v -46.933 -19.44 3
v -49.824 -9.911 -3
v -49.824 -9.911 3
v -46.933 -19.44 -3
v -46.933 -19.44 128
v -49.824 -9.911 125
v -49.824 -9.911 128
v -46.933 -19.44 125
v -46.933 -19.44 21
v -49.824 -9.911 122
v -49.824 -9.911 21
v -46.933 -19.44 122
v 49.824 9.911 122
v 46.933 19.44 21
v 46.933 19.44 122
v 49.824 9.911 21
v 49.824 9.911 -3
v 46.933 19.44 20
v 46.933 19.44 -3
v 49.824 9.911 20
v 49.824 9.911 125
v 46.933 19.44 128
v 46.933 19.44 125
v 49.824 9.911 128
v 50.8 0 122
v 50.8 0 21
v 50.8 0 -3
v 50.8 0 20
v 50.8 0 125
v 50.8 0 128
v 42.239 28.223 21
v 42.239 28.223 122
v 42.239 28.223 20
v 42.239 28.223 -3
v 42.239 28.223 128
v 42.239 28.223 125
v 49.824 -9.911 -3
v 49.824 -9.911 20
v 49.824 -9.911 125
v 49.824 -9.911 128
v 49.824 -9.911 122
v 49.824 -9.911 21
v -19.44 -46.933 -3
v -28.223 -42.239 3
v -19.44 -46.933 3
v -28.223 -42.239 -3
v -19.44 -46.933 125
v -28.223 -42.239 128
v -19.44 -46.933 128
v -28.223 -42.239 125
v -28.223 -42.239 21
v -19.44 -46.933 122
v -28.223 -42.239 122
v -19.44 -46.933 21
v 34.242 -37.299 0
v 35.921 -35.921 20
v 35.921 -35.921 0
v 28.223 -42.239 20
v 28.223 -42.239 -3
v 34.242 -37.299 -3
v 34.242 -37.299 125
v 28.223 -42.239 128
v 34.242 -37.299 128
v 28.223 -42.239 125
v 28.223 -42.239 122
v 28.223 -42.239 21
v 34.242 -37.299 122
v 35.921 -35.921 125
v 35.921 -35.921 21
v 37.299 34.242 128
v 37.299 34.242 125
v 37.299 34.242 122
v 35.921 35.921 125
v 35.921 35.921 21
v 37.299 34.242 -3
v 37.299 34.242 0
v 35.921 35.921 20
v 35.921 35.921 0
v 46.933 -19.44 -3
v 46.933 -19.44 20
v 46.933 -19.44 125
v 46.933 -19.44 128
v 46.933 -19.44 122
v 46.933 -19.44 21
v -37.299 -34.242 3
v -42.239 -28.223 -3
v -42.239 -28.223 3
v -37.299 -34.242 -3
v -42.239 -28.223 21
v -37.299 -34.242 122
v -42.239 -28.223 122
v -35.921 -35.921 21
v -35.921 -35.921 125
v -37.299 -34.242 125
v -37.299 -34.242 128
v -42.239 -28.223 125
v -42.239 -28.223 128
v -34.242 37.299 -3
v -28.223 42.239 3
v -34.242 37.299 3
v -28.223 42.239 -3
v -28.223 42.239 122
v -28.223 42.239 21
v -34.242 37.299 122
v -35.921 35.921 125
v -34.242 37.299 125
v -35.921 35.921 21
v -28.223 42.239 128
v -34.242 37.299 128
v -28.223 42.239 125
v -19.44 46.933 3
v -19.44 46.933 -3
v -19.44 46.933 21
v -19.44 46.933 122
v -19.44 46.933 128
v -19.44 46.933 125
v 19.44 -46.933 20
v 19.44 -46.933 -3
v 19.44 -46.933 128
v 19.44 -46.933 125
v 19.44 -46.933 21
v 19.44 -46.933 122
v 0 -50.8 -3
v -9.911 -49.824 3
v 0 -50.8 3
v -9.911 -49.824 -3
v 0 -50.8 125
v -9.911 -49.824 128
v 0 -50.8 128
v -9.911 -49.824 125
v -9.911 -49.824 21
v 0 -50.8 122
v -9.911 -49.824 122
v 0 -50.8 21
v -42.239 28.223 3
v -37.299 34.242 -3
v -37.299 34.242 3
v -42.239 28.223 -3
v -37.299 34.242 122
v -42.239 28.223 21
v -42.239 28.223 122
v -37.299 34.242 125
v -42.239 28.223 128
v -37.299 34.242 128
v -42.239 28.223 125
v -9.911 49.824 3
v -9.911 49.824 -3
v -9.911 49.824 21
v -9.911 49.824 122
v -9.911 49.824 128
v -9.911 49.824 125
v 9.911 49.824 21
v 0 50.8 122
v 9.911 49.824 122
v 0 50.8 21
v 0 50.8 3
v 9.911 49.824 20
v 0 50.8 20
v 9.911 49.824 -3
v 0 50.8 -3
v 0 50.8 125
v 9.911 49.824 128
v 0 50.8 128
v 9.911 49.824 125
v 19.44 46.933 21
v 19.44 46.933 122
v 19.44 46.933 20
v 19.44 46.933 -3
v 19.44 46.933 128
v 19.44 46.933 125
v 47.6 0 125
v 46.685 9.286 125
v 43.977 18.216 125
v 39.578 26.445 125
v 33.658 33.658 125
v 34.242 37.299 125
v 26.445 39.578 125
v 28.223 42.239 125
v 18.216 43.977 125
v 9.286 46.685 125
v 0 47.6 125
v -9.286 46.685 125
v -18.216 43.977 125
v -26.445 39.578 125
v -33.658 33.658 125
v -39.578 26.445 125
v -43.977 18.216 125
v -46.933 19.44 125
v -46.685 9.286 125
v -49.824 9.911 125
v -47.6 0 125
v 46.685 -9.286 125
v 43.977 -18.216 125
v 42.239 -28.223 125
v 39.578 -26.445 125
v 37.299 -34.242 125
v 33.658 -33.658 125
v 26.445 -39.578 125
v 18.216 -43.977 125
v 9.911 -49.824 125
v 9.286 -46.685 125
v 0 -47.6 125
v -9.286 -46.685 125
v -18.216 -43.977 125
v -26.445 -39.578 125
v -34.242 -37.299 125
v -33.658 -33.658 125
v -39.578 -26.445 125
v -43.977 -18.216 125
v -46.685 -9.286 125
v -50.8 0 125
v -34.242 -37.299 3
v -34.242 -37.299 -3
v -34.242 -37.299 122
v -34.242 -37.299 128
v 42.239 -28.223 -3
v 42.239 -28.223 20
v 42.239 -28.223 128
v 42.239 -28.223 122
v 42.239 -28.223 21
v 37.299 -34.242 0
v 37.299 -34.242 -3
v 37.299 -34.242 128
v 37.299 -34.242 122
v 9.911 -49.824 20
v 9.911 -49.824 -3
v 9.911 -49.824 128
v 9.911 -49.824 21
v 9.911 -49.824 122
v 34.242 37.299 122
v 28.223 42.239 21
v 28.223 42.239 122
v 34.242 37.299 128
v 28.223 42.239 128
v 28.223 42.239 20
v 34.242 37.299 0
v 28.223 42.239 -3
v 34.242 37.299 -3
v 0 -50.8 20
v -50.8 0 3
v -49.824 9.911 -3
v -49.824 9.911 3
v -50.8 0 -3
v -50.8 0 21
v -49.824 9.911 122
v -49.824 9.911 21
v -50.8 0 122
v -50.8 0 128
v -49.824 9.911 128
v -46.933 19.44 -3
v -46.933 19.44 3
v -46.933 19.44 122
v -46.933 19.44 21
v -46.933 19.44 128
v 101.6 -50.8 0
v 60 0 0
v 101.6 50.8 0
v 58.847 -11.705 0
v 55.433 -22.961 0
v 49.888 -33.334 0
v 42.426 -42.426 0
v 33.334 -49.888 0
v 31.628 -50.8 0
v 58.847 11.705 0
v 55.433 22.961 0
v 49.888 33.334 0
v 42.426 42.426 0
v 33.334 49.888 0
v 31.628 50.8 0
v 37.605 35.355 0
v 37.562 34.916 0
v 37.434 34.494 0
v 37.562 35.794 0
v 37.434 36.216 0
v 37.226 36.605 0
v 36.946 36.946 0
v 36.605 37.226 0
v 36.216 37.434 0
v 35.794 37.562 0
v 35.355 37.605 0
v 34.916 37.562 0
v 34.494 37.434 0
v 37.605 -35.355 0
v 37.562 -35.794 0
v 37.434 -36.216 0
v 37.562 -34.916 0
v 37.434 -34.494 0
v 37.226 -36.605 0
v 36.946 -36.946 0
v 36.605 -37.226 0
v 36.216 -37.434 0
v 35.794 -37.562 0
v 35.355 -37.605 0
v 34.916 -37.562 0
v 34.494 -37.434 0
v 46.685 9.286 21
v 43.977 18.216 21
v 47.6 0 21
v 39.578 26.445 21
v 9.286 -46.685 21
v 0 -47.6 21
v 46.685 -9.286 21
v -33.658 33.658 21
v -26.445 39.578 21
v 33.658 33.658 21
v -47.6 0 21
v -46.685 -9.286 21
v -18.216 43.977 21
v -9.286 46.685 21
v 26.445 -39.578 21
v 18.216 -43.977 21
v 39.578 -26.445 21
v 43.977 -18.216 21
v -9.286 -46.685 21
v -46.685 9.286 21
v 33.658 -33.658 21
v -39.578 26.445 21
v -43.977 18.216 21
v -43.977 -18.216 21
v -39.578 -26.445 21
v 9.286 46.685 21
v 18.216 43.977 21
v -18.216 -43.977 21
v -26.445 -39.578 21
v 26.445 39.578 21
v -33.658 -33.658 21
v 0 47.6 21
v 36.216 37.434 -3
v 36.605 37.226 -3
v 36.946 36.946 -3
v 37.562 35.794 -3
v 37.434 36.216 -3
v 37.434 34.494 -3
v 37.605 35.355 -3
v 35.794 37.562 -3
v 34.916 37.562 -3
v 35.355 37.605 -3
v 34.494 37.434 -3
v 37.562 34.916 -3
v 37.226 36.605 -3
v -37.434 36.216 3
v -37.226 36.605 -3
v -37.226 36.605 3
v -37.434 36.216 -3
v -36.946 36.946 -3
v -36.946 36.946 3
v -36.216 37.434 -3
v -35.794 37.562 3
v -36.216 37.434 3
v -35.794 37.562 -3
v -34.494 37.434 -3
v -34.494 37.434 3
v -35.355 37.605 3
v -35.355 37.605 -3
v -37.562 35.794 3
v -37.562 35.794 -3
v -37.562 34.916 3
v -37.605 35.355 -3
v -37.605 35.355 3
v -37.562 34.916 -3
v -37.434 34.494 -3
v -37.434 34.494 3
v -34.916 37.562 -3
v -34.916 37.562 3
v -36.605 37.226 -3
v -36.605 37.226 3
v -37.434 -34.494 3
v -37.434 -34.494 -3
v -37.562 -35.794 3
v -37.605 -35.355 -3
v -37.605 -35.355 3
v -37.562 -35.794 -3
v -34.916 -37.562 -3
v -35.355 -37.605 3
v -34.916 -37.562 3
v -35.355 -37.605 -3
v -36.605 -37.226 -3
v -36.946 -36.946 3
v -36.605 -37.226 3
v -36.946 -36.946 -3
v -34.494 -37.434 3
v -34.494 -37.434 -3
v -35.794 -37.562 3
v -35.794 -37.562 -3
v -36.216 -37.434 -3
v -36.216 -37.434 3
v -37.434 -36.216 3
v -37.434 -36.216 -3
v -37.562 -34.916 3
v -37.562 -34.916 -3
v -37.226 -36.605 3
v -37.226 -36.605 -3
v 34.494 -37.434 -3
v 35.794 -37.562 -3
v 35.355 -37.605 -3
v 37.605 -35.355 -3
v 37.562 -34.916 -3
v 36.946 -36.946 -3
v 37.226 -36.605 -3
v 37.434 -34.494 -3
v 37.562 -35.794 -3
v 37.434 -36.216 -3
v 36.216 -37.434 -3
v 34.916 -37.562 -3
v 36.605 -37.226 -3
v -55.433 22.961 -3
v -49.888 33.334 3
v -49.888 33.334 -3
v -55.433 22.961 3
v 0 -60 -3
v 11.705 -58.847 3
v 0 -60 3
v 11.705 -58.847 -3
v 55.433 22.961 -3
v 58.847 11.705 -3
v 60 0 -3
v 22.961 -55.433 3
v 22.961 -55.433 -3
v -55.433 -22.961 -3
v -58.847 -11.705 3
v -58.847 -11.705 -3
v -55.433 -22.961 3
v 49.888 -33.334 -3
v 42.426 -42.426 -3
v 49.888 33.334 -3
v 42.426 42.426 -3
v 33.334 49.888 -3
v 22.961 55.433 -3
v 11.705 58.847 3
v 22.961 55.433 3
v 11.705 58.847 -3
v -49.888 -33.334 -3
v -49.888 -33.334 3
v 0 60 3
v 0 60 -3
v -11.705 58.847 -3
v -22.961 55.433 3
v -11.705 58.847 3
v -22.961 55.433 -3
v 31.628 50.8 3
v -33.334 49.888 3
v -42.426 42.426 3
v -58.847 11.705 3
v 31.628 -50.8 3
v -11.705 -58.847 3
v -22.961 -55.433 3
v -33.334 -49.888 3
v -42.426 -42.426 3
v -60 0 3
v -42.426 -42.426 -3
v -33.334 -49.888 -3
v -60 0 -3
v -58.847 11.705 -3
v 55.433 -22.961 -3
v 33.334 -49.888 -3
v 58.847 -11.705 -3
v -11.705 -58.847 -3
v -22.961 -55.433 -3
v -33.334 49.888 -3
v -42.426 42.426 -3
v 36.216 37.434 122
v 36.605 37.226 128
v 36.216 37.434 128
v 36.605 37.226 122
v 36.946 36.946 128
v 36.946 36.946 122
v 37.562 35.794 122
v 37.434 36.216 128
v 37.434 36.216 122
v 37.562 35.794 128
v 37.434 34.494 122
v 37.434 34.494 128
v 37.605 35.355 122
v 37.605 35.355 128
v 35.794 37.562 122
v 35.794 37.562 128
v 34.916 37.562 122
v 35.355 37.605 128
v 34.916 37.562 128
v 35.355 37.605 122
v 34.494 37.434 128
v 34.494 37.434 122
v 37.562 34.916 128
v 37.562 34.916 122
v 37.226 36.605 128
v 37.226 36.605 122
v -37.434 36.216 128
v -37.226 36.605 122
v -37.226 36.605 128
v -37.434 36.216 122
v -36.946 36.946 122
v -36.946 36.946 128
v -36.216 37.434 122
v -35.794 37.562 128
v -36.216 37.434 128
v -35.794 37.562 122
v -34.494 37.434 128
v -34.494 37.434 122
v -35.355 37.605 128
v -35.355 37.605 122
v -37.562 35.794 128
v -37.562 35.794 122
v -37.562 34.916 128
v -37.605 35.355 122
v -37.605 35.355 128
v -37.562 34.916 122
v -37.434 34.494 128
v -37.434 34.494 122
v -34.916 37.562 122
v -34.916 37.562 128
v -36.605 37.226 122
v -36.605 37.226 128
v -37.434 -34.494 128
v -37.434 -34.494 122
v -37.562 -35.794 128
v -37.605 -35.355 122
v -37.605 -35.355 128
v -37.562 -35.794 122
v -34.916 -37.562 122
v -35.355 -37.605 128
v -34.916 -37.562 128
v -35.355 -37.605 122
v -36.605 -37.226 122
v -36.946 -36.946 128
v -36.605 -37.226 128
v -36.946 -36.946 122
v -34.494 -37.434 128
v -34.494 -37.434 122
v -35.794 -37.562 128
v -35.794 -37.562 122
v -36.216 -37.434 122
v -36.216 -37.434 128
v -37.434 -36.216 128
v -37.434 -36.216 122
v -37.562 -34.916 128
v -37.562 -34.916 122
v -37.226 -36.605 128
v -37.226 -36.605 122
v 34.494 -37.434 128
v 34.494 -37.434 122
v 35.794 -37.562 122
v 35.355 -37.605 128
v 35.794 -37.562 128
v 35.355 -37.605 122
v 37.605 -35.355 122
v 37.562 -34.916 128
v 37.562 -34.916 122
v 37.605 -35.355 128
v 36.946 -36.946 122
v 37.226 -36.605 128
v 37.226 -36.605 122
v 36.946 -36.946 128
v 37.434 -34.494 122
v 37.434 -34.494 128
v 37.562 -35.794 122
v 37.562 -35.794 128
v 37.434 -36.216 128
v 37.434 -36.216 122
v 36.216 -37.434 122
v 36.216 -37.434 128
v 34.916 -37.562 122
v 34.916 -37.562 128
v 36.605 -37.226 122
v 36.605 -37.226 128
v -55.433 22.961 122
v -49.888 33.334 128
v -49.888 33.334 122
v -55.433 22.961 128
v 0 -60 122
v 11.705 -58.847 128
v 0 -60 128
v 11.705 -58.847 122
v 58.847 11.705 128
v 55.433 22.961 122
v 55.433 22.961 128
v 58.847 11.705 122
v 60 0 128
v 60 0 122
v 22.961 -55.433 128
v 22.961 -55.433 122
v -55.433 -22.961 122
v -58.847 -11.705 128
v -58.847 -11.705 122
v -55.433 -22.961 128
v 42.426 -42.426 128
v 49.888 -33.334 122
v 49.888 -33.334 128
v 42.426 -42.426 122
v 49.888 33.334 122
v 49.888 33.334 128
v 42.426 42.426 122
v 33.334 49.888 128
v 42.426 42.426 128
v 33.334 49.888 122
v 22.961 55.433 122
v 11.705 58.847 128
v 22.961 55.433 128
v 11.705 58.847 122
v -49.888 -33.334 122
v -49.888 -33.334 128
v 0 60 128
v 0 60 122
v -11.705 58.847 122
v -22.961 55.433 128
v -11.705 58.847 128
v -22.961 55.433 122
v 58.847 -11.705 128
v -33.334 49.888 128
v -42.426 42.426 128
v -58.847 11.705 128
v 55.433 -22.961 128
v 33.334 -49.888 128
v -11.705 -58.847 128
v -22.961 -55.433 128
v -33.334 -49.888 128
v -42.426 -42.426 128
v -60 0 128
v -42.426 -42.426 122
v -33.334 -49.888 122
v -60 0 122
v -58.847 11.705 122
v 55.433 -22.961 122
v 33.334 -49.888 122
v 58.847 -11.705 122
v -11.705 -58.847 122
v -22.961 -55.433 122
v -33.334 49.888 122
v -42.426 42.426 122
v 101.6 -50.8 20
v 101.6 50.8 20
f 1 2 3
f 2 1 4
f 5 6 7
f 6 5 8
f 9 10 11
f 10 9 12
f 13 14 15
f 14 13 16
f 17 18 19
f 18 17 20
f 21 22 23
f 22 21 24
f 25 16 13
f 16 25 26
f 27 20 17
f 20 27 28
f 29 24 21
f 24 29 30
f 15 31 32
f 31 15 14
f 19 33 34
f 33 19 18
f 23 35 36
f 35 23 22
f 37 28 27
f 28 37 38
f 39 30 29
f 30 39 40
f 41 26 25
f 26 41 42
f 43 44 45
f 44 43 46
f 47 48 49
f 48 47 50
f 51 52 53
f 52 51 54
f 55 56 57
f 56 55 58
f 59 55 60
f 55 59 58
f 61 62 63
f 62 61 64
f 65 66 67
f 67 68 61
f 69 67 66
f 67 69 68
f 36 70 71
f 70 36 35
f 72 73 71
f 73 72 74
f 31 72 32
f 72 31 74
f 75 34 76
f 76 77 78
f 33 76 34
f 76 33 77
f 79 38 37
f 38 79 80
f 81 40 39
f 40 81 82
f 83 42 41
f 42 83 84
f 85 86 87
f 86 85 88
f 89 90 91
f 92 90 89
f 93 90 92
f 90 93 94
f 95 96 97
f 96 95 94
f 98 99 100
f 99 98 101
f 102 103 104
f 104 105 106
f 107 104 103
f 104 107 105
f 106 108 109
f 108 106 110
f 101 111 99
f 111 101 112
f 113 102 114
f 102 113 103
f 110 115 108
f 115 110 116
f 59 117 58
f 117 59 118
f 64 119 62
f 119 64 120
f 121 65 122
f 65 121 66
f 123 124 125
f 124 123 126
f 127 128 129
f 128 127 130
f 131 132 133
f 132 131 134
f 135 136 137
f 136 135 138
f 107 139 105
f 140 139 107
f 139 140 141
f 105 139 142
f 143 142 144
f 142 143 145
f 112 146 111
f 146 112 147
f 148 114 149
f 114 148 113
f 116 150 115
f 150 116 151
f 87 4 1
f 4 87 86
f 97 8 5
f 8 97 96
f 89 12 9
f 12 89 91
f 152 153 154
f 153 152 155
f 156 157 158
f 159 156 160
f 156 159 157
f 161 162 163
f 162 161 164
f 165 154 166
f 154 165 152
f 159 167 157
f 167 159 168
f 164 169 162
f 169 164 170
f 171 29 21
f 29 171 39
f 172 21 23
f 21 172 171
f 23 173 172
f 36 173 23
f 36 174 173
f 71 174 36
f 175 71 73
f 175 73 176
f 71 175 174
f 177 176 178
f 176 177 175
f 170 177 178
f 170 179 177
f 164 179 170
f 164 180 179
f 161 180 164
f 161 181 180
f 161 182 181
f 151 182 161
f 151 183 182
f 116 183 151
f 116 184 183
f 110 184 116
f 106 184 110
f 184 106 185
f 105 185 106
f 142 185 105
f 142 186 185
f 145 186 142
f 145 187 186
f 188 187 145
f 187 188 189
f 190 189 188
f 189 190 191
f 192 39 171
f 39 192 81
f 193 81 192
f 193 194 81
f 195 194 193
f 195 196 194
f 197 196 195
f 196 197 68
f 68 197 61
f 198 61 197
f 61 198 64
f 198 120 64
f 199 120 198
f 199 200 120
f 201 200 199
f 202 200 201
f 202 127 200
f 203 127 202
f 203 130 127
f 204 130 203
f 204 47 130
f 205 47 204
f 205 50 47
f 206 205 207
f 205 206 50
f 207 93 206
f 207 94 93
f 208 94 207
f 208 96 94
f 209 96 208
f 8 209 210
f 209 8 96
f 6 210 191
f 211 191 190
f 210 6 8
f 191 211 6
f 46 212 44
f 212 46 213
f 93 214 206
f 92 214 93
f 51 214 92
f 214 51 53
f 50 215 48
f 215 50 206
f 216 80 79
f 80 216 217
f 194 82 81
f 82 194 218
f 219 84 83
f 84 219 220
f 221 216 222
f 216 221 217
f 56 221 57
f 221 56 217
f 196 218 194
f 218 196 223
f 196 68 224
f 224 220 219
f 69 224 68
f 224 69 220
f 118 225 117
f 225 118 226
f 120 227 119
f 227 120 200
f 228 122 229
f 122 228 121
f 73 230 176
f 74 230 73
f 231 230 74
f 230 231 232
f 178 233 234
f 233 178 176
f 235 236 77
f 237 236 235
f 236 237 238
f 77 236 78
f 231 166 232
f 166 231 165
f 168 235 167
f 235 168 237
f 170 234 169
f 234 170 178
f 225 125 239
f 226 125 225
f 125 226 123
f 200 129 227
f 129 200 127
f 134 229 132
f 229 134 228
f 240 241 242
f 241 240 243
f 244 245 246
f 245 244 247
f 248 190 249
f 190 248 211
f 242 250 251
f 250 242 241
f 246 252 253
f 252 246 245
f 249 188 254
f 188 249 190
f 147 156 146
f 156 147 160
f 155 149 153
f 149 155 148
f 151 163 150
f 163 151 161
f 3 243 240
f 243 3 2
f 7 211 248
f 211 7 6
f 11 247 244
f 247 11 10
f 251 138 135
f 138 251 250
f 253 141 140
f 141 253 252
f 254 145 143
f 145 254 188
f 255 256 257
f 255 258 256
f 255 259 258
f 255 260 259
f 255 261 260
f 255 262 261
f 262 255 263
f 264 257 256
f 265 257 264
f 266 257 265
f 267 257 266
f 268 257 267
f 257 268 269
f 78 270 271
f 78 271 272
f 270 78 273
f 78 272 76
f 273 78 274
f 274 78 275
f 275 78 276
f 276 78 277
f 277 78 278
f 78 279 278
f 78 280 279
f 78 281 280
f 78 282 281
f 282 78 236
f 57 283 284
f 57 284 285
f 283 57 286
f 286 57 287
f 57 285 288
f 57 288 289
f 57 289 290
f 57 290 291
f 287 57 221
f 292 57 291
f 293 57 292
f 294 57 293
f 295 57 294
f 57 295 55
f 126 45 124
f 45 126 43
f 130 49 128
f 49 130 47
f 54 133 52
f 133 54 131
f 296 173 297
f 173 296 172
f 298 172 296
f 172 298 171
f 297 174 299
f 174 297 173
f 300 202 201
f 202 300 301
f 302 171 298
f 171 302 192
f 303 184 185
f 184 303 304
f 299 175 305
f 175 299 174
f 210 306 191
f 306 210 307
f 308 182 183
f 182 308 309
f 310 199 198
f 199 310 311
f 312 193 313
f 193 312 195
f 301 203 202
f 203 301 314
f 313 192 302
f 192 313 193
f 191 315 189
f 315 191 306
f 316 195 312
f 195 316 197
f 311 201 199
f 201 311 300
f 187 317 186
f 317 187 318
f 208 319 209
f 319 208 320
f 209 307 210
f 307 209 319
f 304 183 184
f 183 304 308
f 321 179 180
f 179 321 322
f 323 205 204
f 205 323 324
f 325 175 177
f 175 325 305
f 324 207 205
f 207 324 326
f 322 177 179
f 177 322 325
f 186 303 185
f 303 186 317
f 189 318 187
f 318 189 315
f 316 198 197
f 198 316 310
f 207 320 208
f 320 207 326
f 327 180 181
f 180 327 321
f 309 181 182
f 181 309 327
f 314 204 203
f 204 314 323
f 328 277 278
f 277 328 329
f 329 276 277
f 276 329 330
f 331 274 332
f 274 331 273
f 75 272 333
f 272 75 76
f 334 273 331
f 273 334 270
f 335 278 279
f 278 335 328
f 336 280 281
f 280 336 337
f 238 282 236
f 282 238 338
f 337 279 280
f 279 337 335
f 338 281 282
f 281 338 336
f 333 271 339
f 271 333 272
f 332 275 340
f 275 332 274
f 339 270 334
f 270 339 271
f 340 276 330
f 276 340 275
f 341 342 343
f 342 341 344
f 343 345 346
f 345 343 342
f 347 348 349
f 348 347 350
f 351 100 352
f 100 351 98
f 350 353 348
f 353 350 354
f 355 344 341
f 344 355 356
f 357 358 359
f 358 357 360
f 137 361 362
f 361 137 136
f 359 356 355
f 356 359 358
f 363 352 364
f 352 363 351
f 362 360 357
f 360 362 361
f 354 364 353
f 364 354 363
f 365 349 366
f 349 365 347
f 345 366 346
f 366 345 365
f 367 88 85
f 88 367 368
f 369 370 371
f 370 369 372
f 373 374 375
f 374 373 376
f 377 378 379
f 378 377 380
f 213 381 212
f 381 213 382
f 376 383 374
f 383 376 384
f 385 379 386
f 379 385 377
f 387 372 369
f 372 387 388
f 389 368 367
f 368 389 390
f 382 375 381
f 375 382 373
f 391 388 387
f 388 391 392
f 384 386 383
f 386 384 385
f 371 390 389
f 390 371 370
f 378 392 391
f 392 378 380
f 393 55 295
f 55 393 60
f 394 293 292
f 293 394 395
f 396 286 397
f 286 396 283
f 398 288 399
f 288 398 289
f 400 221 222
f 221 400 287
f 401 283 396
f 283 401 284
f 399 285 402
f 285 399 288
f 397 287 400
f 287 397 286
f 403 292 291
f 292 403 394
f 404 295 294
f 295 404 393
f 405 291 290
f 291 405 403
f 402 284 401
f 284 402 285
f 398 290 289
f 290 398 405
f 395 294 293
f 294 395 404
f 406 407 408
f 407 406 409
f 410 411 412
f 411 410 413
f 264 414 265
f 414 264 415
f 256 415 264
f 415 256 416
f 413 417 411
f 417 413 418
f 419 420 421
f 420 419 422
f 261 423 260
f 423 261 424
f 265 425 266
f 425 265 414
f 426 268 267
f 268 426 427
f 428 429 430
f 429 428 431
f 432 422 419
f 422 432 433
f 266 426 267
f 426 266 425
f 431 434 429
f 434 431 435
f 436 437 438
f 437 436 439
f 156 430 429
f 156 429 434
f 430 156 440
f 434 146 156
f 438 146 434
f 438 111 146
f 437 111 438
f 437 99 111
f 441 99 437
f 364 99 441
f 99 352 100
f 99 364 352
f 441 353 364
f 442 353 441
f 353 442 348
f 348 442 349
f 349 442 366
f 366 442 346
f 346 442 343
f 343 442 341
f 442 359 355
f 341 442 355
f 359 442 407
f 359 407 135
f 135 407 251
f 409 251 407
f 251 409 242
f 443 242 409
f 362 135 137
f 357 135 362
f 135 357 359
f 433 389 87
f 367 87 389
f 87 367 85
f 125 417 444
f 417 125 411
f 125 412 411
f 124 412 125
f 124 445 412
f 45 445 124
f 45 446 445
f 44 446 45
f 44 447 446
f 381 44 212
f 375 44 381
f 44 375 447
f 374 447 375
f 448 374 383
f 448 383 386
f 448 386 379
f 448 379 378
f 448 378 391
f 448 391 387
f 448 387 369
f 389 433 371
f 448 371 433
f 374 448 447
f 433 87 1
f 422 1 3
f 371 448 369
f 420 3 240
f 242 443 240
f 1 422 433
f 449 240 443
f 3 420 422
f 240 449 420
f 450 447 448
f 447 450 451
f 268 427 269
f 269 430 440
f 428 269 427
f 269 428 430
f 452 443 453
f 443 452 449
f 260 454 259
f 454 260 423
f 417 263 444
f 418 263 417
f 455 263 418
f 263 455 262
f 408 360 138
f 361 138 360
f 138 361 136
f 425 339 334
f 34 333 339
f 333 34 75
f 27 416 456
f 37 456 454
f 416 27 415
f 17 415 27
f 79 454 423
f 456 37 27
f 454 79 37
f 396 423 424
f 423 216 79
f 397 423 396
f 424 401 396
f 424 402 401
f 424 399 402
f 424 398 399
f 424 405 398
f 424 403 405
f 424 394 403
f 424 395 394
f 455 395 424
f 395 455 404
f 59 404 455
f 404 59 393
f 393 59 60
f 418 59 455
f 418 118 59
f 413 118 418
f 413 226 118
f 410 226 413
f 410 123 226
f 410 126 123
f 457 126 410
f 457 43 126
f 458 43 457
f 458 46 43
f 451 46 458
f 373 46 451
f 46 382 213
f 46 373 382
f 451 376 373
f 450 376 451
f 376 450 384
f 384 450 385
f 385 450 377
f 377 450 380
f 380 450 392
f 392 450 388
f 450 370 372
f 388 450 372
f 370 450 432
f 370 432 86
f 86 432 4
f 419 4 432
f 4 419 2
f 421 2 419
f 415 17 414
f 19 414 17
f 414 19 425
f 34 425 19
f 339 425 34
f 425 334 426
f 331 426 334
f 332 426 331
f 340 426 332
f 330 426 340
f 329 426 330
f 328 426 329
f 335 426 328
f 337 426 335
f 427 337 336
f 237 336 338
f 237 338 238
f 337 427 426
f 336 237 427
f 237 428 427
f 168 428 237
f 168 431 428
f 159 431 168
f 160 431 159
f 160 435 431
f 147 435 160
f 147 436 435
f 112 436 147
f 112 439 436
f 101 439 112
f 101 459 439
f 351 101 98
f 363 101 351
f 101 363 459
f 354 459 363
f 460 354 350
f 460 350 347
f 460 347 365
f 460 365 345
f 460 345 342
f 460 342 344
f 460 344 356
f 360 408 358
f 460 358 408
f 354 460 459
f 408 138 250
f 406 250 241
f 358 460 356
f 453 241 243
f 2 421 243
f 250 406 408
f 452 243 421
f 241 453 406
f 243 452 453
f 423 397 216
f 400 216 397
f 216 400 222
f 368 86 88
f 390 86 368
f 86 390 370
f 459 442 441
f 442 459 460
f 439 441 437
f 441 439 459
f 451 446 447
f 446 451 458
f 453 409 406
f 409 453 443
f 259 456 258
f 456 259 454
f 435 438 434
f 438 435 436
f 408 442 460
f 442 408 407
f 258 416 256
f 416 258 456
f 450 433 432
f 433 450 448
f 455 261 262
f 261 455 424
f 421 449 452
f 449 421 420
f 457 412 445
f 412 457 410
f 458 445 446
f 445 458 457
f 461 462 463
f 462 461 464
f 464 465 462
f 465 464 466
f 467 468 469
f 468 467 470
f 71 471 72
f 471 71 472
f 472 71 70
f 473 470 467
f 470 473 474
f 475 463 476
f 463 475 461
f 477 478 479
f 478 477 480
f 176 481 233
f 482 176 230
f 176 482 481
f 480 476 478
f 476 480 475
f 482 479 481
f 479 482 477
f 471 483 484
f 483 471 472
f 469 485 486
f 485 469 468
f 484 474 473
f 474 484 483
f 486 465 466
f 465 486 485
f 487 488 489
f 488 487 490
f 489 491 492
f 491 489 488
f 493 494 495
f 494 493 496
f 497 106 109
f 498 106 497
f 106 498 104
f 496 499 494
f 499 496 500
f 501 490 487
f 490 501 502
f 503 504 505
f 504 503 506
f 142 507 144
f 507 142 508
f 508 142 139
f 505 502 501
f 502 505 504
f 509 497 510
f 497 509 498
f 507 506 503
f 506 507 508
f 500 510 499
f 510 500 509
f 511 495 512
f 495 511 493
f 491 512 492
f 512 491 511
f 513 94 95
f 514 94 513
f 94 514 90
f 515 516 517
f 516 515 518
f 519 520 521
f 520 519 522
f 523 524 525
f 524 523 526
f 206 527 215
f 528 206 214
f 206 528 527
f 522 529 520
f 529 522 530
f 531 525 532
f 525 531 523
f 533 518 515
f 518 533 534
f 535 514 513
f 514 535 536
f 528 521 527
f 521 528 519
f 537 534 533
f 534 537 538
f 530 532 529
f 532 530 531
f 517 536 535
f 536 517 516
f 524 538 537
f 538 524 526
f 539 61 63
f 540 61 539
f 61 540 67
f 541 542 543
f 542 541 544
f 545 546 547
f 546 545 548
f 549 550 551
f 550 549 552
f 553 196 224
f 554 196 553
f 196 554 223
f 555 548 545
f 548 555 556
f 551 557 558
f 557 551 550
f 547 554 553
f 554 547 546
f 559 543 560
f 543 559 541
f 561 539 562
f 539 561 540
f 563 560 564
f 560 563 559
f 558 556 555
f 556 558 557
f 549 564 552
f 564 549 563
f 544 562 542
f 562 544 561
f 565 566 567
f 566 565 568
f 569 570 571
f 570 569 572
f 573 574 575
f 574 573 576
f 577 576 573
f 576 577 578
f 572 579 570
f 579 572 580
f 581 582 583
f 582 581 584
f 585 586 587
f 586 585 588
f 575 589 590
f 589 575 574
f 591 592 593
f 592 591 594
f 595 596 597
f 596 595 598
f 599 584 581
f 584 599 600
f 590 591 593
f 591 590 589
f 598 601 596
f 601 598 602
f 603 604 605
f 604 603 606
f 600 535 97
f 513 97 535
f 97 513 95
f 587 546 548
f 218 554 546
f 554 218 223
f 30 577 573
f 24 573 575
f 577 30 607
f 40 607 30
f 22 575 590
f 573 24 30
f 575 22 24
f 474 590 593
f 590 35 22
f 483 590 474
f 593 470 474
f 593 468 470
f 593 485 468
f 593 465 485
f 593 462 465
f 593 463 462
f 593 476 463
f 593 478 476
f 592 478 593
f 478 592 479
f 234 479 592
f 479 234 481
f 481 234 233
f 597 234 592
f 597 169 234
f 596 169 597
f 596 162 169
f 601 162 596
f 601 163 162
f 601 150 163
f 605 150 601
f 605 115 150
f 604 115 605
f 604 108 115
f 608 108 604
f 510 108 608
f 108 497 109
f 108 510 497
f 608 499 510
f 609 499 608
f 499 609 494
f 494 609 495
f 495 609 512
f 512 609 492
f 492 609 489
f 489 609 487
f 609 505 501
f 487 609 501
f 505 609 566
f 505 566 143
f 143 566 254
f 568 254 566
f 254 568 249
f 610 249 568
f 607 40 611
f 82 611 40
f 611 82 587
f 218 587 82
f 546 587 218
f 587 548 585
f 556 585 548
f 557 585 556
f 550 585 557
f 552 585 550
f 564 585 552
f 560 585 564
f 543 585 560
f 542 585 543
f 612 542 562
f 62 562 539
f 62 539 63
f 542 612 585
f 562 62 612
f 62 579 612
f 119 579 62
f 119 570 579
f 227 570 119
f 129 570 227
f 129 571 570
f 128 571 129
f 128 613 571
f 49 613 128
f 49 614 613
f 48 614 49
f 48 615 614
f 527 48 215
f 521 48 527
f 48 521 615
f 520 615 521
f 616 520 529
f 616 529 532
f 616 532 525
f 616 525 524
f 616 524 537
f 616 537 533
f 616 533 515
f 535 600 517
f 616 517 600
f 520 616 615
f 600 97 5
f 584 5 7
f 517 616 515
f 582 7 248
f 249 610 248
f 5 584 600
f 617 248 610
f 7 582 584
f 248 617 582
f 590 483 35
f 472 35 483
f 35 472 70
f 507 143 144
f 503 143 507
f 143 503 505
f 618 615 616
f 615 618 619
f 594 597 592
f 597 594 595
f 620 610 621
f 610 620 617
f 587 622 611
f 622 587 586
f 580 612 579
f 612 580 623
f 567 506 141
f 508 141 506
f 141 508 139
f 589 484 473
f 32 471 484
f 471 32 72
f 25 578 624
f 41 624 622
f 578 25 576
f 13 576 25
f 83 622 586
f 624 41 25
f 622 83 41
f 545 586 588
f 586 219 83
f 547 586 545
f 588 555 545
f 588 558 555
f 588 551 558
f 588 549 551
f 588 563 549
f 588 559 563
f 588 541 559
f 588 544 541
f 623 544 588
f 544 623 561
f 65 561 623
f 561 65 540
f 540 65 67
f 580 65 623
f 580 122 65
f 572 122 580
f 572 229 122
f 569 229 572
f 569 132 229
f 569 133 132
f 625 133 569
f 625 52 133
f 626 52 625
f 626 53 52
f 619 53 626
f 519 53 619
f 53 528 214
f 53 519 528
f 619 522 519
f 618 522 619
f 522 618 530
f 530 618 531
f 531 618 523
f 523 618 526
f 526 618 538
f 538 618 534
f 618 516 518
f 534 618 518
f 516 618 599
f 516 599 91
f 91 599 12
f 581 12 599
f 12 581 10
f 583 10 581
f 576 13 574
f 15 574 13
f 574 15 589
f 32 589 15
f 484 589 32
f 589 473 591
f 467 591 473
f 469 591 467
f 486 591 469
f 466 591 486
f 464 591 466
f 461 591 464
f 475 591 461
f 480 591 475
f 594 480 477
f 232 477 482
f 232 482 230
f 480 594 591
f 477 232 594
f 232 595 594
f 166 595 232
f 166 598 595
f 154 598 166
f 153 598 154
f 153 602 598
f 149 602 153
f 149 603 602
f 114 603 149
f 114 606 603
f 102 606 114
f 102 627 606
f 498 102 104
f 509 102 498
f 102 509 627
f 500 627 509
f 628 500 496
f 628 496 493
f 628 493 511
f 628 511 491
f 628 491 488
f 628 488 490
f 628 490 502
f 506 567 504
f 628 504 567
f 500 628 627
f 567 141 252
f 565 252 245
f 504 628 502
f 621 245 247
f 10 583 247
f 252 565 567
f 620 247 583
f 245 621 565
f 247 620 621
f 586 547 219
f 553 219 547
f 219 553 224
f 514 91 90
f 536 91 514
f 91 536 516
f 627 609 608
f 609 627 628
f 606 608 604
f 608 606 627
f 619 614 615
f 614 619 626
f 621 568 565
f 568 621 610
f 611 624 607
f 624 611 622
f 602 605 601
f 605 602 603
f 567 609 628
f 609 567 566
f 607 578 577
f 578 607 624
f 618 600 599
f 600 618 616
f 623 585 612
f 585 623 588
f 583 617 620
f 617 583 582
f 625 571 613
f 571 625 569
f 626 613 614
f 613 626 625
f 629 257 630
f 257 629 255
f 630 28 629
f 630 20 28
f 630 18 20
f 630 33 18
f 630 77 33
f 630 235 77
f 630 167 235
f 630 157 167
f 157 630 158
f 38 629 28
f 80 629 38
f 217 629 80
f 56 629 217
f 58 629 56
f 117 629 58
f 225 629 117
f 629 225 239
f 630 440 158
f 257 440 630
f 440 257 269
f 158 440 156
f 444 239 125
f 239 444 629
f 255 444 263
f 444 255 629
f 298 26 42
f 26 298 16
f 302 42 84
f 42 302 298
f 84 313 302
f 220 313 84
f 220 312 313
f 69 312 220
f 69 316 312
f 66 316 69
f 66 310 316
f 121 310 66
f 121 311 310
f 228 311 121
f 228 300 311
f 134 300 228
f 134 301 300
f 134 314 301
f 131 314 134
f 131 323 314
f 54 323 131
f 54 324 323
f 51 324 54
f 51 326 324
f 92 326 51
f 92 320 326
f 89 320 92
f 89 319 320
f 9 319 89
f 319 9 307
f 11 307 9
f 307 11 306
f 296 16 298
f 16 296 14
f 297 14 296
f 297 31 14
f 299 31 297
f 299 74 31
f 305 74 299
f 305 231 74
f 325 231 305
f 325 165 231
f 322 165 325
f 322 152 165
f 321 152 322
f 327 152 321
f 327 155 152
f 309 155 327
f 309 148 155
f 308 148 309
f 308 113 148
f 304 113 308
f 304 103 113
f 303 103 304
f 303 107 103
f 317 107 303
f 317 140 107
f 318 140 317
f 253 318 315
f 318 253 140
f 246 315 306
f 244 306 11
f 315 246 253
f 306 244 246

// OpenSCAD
// file: trap_modules.scad
// ShopVac Rat Trap - Shared Modules
// Updated with actual component dimensions from BOM

// Global resolution
$fn = 32;

// === Tube Parameters ===
tube_outer_diameter = 101.6;  // 4 inches in mm (standard PVC size)
tube_wall_thickness = 3.2;    // Standard wall thickness
tube_inner_diameter = tube_outer_diameter - (2 * tube_wall_thickness);

// === Flange Parameters ===
flange_diameter = 120;         // Outer flange diameter
flange_thickness = 6;          // Flange thickness
flange_screw_hole_diameter = 4.5;  // M4 clearance holes
flange_screw_hole_inset = 10;  // Distance from flange edge

// === Center Joint - Alignment Pins ===
alignment_pin_diameter = 6;    // 6mm diameter pins
alignment_pin_length = 8;      // 8mm insertion depth
alignment_pin_radius = tube_outer_diameter/2 - 25;  // Position on flange
alignment_pin_clearance = 0.3; // Extra clearance for holes

// === Center Joint - O-Ring Seal ===
oring_groove_width = 3;        // Width of groove (for 2.5mm O-ring)
oring_groove_depth = 1.5;      // Depth of groove

// === STEMMA QT Sensor Mounts (Adafruit Standard) ===
// Standard STEMMA QT board: 17.78mm × 25.4mm (0.7" × 1.0")
stemma_qt_board_width = 17.78;   // Standard width
stemma_qt_board_length = 25.4;   // Standard length
stemma_qt_hole_diameter = 2.7;   // M2.5 clearance holes
stemma_qt_hole_spacing_w = 12.7; // Hole spacing width (0.5")
stemma_qt_hole_spacing_l = 20.3; // Hole spacing length (~0.8")
stemma_qt_mount_thickness = 3;   // Mount base thickness
stemma_qt_standoff_height = 5;   // PCB standoff height

// === PIR Sensor Mount (Adafruit 4871) ===
// Larger board: 32mm × 24mm
pir_board_width = 24;
pir_board_length = 32;
pir_hole_diameter = 3.2;      // M3 clearance
pir_hole_spacing = 28;        // Between mounting holes
pir_dome_diameter = 12;       // PIR dome clearance
pir_dome_height = 8;          // Dome projection

// ========== MODULES ==========

module flange(outer_diameter, thickness, screw_hole_diameter, screw_hole_inset) {
    difference() {
        cylinder(d = outer_diameter, h = thickness, center = true);
        cylinder(d = tube_outer_diameter, h = thickness + 1, center = true);

        // Screw holes
        for (a = [45, 135, 225, 315]) {
            rotate([0, 0, a]) {
                translate([outer_diameter/2 - screw_hole_inset, 0, 0]) {
                    cylinder(d = screw_hole_diameter, h = thickness + 1, center = true);
                }
            }
        }
    }
}

module tube(length, outer_diameter, wall_thickness) {
     difference() {
        cylinder(d=outer_diameter, h=length, center=true);
        cylinder(d=outer_diameter - (2*wall_thickness), h=length+1, center=true);
    }
}
// main file
// ShopVac Rat Trap - Trap Body Rear Half
//
// Description:
// Rear half of the main trap body (125mm section).
// Connects to trap_body_front via center flange joint at one end,
// and to trap_funnel_adapter via flange at the other.
// =========================================

include <trap_modules.scad>

// ========== CORE PARAMETERS ==========

// [Dimensions]
body_length = 125;  // Half of original 250mm
flat_base_height = 20;

// ========== MODULES ==========

module trap_body_rear() {
    difference() {
        union() {
            // Main tube body
            translate([0,0,body_length/2]) {
                tube(body_length, tube_outer_diameter, tube_wall_thickness);
            }

            // Flange at center joint (connects to trap_body_front)
            translate([0, 0, 0]) {
                flange(flange_diameter, flange_thickness, flange_screw_hole_diameter, flange_screw_hole_inset);
            }

            // Flange at funnel end (connects to trap_funnel_adapter)
            translate([0, 0, body_length]) {
                flange(flange_diameter, flange_thickness, flange_screw_hole_diameter, flange_screw_hole_inset);
            }

            // Flat base for stability
            translate([0, -tube_outer_diameter/2, 0]) {
                cube([tube_outer_diameter, tube_outer_diameter, flat_base_height]);
            }
        }

        // Cut away top of base to match tube profile
        translate([0,0,-1]) {
            cylinder(d=tube_outer_diameter, h=flat_base_height+2);
        }

        // Alignment pin holes for center joint (female)
        for (a = [0, 180]) {
            rotate([0, 0, a]) {
                translate([alignment_pin_radius, 0, -1]) {
                    cylinder(d=alignment_pin_diameter + alignment_pin_clearance,
                            h=alignment_pin_length + 2, $fn=20);
                }
            }
        }
    }
}

// ========== ASSEMBLY CALL ==========
trap_body_rear();
